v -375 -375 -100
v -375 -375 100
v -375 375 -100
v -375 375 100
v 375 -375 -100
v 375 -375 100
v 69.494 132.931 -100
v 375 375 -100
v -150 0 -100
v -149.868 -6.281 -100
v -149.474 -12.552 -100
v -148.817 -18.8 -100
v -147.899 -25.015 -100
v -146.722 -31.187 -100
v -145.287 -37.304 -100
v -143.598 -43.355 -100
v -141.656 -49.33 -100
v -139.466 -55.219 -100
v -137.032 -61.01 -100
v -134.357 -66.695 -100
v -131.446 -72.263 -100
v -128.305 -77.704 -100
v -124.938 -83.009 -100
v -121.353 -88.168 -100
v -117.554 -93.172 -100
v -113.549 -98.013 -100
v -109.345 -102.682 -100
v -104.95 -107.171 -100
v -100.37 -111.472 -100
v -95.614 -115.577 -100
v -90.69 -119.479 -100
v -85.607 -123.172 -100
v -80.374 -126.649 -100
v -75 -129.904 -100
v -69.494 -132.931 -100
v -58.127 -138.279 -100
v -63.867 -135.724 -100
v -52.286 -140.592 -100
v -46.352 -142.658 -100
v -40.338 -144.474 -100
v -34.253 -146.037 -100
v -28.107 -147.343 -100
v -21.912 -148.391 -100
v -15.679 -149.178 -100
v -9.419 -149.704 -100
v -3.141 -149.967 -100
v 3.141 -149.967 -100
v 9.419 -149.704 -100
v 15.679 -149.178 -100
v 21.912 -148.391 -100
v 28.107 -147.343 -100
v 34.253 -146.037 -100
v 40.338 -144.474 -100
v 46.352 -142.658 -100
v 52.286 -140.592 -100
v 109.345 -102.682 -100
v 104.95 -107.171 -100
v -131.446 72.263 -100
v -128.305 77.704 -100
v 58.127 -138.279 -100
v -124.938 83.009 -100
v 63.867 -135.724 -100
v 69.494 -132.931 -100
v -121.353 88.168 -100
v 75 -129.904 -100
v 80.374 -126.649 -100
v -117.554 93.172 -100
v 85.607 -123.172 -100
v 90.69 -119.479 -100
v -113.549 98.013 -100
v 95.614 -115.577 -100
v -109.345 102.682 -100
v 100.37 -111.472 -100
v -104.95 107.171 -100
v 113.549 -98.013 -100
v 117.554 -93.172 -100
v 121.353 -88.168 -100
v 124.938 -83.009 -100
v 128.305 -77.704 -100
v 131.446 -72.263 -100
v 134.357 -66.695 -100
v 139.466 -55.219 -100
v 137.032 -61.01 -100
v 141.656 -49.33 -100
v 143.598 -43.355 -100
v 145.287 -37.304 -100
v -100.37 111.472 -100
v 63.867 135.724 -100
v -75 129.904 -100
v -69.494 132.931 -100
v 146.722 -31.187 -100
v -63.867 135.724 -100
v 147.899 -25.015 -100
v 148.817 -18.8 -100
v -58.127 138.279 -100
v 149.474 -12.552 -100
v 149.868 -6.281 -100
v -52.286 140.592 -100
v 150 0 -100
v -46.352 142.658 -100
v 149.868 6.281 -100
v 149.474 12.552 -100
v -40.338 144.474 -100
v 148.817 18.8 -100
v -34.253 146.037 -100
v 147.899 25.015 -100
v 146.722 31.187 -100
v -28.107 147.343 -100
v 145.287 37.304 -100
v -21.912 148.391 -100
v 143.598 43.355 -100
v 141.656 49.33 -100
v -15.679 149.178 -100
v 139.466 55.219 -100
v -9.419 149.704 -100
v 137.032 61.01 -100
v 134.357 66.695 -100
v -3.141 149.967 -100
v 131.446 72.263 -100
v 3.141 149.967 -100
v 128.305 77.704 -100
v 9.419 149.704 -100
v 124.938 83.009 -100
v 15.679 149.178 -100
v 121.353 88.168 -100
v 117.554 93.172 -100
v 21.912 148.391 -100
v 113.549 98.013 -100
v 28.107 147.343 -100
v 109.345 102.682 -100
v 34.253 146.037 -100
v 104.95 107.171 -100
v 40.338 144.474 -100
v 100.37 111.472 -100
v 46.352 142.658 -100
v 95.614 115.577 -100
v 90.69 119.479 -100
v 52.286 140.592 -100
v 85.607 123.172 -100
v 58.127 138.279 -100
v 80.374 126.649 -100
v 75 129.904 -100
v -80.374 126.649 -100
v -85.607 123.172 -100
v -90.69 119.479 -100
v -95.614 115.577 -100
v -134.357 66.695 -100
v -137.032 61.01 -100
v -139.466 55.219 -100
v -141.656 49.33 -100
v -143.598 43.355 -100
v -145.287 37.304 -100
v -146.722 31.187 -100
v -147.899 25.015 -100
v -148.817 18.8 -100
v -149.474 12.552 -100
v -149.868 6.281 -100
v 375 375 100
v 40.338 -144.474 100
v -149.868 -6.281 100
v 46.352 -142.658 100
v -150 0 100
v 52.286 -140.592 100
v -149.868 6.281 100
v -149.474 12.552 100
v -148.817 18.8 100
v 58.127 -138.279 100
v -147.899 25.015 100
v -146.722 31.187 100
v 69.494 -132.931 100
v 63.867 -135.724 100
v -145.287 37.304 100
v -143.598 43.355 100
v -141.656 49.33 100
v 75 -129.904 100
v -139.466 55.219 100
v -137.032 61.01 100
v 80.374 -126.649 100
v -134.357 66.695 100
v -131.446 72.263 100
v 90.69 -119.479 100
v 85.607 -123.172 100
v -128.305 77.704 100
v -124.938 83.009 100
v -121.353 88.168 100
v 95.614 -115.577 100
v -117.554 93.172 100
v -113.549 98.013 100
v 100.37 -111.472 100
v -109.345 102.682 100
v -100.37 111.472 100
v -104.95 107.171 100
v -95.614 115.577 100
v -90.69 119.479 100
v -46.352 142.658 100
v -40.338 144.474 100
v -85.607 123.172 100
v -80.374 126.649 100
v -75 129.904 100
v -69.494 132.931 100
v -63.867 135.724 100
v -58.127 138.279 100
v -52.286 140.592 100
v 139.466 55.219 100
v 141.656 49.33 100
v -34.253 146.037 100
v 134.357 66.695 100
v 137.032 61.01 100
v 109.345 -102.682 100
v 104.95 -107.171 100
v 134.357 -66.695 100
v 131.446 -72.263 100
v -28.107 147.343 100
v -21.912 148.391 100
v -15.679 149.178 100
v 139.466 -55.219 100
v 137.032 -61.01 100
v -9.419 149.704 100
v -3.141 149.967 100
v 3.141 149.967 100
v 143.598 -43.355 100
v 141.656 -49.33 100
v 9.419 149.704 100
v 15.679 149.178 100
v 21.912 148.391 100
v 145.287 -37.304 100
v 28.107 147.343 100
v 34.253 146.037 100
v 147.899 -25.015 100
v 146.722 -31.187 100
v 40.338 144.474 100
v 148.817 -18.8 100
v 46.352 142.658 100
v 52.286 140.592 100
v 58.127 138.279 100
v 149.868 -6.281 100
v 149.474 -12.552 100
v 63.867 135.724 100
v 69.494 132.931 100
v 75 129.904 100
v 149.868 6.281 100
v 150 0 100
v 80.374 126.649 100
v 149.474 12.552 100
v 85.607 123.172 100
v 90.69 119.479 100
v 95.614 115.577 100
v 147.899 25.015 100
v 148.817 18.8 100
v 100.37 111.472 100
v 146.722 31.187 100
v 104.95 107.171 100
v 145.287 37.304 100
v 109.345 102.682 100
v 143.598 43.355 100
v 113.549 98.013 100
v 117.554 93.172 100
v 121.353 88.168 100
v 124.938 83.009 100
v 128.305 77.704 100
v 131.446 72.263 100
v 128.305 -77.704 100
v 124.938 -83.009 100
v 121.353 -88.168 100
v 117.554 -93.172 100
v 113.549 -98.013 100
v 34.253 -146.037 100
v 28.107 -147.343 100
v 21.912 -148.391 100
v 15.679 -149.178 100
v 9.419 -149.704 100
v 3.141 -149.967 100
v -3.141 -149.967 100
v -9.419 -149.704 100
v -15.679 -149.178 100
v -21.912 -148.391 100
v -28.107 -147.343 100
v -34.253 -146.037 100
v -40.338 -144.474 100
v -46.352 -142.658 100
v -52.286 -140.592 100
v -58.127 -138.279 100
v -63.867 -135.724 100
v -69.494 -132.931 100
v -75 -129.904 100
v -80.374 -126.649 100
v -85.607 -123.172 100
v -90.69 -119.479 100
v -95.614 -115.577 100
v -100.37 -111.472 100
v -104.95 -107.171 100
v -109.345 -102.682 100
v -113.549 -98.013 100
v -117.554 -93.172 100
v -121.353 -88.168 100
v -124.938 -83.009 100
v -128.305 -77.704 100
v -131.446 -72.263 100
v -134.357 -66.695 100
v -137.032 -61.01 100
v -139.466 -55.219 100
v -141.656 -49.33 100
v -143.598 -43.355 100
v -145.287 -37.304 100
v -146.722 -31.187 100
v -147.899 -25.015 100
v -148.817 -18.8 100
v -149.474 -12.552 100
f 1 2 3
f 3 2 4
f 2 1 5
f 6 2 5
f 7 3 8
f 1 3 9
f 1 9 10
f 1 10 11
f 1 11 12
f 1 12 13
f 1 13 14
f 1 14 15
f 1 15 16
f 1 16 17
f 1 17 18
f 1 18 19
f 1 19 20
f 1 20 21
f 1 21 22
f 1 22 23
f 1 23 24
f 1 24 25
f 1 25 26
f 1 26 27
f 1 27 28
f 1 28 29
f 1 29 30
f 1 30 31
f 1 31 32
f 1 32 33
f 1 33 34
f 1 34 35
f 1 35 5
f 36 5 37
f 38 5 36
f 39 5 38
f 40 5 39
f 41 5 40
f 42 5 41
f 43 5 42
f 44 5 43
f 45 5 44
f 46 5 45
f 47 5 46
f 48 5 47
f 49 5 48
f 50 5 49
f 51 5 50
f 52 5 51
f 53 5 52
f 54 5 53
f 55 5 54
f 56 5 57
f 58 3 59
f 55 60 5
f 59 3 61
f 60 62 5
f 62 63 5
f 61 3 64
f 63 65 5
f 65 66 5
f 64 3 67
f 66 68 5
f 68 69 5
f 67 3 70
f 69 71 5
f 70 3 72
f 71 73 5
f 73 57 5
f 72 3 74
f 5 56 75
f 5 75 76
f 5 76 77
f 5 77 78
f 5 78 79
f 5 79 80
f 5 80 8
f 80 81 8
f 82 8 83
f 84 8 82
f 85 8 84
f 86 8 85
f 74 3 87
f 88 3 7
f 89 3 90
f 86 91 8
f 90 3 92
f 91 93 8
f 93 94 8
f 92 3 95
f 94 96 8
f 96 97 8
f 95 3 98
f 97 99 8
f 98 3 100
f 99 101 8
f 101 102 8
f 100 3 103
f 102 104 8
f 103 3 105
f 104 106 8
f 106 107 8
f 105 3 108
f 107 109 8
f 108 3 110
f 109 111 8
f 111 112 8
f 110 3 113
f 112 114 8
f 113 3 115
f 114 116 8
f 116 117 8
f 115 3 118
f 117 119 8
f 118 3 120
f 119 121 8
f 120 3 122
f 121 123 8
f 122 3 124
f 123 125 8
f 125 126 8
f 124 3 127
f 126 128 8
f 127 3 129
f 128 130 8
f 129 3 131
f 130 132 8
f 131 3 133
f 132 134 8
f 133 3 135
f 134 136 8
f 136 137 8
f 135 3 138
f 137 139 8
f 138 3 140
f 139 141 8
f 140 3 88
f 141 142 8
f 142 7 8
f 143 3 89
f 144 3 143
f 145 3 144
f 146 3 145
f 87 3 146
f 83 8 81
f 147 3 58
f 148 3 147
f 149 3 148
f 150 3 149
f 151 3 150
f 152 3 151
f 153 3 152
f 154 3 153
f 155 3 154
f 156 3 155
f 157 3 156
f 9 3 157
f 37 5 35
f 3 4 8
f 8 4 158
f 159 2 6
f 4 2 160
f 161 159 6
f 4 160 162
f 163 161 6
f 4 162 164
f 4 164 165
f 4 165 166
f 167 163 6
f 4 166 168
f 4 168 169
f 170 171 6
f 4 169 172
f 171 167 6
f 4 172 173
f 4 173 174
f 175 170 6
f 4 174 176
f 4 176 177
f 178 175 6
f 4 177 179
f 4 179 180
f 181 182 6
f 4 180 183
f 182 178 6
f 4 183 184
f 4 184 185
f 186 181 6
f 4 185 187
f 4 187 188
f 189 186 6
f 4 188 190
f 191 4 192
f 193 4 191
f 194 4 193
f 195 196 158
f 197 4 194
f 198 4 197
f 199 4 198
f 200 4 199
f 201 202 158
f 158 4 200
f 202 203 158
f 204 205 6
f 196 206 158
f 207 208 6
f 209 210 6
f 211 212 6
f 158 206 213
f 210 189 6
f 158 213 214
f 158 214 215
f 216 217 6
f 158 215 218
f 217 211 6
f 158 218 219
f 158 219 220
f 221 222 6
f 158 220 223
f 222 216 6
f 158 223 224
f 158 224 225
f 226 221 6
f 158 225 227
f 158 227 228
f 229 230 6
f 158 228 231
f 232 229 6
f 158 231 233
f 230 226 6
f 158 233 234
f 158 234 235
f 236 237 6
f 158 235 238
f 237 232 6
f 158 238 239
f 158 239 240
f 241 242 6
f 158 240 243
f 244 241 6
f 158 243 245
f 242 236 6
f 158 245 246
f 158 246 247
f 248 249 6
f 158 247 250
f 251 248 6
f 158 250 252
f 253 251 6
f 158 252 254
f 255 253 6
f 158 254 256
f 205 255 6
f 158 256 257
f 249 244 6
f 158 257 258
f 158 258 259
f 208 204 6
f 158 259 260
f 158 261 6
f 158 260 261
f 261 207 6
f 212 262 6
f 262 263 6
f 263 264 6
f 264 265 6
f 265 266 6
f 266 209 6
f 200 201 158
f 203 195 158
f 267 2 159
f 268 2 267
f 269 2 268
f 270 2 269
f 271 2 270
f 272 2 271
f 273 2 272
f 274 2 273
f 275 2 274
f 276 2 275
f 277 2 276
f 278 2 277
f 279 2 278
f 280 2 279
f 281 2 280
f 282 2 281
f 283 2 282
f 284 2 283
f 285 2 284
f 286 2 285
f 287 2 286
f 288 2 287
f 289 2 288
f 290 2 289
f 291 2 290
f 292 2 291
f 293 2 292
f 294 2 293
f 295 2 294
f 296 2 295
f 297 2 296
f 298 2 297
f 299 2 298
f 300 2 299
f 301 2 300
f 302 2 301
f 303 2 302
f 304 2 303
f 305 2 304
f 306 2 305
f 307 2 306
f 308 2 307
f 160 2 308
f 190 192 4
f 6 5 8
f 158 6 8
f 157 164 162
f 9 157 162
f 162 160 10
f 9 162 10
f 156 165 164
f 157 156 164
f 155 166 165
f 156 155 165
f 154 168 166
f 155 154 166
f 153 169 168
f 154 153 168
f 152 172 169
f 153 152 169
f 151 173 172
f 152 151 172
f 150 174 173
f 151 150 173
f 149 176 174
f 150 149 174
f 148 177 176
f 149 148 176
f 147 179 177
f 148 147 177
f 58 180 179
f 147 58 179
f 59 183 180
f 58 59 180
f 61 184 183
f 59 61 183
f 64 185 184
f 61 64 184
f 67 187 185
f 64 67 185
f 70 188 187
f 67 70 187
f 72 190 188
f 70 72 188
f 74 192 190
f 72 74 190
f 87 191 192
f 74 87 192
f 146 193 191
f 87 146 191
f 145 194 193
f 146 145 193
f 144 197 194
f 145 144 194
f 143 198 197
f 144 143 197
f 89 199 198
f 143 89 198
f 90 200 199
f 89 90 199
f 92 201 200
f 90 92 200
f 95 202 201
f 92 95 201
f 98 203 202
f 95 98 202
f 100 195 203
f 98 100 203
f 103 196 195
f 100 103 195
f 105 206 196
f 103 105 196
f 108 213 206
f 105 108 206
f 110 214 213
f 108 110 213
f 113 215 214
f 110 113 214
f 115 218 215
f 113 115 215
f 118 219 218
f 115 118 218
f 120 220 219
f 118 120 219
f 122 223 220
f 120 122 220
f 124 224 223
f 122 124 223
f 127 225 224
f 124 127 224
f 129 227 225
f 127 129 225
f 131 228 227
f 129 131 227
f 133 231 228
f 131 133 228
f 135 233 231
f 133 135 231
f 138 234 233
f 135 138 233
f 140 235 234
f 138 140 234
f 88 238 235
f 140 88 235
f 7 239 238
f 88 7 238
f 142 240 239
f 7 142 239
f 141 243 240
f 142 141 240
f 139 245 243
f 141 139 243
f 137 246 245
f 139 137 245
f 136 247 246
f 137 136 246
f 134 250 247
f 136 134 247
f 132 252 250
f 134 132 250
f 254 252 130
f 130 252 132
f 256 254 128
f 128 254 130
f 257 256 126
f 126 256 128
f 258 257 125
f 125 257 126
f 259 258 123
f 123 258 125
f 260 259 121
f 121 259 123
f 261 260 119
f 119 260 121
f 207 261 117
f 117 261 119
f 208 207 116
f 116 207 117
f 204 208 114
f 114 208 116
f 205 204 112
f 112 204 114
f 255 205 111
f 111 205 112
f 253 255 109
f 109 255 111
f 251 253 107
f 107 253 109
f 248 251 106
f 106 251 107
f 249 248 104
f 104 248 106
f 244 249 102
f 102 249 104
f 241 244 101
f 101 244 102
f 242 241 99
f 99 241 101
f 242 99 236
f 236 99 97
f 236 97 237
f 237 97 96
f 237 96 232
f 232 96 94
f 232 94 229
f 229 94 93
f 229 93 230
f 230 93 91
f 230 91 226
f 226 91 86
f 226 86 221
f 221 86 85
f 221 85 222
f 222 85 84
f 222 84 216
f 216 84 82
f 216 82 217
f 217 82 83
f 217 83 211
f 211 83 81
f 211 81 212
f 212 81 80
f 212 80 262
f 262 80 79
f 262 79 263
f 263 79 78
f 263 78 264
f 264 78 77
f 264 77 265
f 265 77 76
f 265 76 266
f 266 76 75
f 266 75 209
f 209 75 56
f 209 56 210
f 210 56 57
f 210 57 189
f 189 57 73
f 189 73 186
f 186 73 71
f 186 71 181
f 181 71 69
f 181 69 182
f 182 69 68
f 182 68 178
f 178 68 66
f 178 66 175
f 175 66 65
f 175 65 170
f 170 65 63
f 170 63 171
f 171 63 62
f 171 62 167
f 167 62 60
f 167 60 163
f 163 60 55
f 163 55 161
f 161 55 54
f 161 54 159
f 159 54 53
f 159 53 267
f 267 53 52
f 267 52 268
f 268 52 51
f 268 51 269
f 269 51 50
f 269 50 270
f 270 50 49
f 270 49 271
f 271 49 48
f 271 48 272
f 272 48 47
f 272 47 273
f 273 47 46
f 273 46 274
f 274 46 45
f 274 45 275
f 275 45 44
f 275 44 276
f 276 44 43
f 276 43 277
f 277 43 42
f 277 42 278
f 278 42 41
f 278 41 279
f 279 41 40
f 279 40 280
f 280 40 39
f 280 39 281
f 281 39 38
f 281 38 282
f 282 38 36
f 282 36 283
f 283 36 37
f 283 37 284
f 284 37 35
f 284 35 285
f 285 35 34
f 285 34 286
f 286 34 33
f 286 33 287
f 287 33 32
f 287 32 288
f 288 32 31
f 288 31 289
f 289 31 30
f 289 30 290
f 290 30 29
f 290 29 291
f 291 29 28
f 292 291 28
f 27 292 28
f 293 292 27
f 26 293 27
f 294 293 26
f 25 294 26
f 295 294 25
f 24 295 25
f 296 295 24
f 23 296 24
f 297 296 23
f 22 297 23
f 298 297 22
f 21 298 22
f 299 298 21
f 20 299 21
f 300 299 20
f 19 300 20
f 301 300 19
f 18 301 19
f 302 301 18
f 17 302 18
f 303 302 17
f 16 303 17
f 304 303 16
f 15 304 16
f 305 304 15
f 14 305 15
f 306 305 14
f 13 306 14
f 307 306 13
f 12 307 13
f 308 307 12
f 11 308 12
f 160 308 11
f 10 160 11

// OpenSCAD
$fn=150;

difference() {
	cube(size=[750, 750, 200], center=true);
cylinder(h=550, r=150, center=true);

}
